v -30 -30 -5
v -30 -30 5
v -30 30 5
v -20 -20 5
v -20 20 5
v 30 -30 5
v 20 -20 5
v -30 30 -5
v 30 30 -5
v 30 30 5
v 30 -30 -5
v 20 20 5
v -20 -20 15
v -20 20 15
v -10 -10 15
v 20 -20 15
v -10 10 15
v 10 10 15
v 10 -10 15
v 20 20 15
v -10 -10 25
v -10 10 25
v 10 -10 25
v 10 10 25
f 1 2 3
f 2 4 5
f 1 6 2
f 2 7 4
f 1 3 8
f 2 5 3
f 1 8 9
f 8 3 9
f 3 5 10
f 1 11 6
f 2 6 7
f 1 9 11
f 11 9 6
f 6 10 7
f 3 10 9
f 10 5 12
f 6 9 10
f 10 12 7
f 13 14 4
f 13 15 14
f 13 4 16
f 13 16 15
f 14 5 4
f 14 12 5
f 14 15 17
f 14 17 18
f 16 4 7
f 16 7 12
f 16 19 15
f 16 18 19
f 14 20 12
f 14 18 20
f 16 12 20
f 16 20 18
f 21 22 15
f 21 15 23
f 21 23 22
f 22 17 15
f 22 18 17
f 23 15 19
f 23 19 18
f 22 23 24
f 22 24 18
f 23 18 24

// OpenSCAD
union() {
    // 1段目 (底辺)
    translate([0, 0, 0])
        cube([60, 60, 10], center = true);

    // 2段目 (中央)
    translate([0, 0, 10])
        cube([40, 40, 10], center = true);

    // 3段目 (頂上)
    translate([0, 0, 20])
        cube([20, 20, 10], center = true);
}
